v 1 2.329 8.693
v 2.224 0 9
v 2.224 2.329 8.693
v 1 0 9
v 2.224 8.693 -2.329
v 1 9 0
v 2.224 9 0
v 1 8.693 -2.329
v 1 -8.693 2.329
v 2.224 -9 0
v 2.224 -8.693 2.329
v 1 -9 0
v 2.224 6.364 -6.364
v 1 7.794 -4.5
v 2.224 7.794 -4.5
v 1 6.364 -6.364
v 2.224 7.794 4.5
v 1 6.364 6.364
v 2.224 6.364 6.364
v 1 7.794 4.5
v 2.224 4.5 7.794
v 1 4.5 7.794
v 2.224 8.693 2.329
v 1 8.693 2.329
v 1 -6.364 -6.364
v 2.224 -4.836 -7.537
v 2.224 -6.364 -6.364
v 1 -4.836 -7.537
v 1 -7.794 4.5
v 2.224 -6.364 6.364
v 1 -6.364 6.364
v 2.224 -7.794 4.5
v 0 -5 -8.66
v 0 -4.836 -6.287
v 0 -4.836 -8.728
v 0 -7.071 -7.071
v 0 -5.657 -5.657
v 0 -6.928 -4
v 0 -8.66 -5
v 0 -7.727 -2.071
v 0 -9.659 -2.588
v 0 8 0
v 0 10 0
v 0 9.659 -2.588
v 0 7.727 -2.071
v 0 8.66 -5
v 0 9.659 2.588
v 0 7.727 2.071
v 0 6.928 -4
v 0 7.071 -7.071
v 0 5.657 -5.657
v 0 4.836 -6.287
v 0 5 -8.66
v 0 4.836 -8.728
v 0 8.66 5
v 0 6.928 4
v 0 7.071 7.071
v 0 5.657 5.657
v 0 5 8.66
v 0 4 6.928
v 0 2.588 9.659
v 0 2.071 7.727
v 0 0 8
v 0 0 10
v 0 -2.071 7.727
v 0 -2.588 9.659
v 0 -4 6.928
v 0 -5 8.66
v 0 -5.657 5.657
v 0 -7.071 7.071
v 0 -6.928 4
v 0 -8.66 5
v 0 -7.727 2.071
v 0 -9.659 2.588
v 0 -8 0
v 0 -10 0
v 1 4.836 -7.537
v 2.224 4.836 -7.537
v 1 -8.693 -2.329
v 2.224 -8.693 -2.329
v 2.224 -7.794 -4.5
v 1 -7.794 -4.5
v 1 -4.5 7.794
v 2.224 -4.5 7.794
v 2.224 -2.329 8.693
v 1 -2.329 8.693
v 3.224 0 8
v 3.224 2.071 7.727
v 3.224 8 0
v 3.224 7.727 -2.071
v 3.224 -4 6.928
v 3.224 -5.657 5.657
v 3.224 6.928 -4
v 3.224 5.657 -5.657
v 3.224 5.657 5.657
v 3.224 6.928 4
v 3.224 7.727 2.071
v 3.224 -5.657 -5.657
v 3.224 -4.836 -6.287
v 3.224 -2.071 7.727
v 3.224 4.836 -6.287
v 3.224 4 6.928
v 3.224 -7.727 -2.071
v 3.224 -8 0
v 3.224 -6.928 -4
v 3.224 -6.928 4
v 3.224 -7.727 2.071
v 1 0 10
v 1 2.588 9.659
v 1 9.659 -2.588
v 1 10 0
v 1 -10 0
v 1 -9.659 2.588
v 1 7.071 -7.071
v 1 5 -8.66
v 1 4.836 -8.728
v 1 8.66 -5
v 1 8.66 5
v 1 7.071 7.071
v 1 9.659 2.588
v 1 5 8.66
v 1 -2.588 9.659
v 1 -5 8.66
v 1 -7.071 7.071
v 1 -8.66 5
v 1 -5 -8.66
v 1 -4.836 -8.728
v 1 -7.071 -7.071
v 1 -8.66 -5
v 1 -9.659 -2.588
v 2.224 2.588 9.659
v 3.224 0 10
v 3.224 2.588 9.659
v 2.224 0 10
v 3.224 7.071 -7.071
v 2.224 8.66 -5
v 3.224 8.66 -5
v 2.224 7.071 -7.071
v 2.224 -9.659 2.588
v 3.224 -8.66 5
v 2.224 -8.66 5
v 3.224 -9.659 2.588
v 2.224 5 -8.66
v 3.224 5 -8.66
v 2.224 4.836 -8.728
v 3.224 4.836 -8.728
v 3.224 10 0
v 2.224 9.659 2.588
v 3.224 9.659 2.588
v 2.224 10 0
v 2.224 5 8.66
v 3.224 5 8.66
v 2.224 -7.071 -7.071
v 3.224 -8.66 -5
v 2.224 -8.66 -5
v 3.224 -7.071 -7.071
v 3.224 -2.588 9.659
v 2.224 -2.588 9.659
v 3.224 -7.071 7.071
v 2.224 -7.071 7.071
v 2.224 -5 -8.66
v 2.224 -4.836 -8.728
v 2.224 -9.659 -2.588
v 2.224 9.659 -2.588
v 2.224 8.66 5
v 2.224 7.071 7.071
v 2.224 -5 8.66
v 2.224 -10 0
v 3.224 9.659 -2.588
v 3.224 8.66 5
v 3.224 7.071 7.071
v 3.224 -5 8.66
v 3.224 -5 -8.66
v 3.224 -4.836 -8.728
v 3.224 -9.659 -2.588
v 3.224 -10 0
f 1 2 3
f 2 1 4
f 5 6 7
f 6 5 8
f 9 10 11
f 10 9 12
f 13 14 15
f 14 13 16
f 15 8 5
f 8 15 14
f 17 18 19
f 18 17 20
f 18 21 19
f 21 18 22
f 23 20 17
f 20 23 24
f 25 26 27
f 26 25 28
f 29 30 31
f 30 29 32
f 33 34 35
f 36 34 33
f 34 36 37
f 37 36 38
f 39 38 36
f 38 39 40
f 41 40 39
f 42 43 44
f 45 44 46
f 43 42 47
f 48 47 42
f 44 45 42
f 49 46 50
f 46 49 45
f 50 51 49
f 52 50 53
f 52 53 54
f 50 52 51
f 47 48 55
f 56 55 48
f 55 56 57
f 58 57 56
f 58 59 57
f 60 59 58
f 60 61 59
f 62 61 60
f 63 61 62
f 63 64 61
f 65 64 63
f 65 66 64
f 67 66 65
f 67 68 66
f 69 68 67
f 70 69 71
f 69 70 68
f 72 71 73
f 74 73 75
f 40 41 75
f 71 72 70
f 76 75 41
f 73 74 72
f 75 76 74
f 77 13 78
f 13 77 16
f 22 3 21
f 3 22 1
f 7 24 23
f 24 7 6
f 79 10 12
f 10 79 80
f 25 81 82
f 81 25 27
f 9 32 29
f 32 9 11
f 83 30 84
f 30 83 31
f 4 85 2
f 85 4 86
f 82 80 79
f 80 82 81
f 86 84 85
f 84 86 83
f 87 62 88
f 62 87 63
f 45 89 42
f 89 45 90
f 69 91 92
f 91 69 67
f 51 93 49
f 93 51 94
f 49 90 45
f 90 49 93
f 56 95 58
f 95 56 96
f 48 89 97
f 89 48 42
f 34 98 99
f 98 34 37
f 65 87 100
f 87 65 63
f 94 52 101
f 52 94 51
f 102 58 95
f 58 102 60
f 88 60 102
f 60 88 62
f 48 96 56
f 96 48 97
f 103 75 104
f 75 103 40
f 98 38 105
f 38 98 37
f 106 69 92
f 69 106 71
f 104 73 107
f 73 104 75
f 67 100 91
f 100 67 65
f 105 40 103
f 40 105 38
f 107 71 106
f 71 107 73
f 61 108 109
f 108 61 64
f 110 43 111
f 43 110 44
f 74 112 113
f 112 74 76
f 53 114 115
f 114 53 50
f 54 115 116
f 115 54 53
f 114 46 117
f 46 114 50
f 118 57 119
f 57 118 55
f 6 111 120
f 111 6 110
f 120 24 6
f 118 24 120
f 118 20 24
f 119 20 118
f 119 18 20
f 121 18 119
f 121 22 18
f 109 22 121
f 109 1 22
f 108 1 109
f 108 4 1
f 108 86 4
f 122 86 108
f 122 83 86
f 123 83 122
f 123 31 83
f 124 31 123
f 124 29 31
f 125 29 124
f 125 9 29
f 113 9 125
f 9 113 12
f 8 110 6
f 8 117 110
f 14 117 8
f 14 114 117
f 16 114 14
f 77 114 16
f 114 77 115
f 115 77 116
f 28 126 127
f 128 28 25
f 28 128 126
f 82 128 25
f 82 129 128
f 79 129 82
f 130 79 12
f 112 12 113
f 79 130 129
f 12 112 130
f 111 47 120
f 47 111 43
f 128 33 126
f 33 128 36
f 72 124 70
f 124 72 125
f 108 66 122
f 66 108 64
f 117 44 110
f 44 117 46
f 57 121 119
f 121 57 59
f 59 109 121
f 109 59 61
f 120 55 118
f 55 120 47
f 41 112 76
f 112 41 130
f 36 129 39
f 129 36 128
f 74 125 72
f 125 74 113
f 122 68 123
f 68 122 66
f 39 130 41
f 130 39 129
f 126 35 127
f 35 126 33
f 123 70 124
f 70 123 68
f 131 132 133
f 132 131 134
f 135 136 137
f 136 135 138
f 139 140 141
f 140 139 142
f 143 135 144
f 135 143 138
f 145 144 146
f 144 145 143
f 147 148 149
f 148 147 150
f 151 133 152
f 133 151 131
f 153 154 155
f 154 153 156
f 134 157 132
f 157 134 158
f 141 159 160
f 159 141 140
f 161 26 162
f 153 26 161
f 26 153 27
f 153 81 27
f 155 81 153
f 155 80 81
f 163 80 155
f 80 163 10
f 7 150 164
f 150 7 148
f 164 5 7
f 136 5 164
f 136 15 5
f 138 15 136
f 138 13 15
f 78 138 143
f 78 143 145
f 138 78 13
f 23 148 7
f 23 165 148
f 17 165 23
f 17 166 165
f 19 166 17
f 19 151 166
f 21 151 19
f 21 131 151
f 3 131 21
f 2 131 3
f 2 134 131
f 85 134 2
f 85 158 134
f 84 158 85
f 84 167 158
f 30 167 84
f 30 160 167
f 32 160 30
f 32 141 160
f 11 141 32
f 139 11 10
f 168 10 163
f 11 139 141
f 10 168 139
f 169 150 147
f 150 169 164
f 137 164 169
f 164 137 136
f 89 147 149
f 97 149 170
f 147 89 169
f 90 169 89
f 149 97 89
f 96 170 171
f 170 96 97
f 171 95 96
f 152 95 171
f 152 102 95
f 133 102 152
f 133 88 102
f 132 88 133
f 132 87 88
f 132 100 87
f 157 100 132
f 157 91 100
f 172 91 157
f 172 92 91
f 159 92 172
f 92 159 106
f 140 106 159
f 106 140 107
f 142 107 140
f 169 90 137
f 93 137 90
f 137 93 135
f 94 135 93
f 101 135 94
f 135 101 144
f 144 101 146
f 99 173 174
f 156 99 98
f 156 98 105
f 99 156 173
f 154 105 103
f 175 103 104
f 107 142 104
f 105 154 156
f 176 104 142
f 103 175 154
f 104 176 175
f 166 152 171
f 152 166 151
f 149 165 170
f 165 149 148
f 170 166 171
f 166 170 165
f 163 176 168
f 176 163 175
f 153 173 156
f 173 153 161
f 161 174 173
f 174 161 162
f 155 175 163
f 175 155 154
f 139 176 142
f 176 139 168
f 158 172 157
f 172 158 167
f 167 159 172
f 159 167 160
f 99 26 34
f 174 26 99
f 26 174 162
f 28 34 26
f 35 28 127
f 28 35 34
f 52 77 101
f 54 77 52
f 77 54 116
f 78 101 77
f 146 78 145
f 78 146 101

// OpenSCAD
// file: ../build_environments.scad
// build_environments.scad: modules to build level sections
//

module pool(diameter=10.0, wall_height=2.0, step_width=3.0, connections=[])
{
    difference() {
        union() {
        difference() {
            cylinder(h=0.5,r1=diameter+step_width,r2=diameter+step_width,$fn=48);
            translate([0,0,-0.1])
                cylinder(h=0.7,r1=diameter,r2=diameter,$fn=48);
        }
        difference() {
            cylinder(h=wall_height,r1=diameter+step_width+1.0,r2=diameter+step_width+1.0,$fn=48);
            translate([0,0,-0.1])
                cylinder(h=wall_height+0.2,r1=diameter+step_width,r2=diameter+step_width,$fn=48);
        }
        }
    
        for (c = connections)
        {
            rotate([0,90,0]) {
                angle = atan2(c[1],c[0]);
                rotate([-angle,0,0]) {
                    cylinder(h=diameter+5.0,r1=c[2],r2=c[2],$fn=48);
                }
            }
        }
    }
}

module straight(length=10.0, width=2.0, dy1=0.0, dy2=0.0, dz=0.0)
{
    dims = [0, 0, 0, 0, 0, (dz/length)];
    matrix = [
        [ 1, dims[0], dims[1], 0 ],
        [ dims[2], 1, dims[4], 0 ],
        [ dims[5], dims[3], 1, 0 ],
        [ 0, 0, 0, 1 ]
    ];
    multmatrix(matrix)
    difference() {
        translate([dy1,0,0])
        union() {
            rotate([0,90,0]) {
                difference() {
                    cylinder(h=(length-dy1-dy2),r1=width+1.0,r2=width+1.0,$fn=24);
                    translate([0,0,-0.1])
                        cylinder(h=(length-dy1-dy2+0.2),r1=width,r2=width,$fn=24);
                }
                difference() {
                    cylinder(h=1.0,r1=width+2.0,r2=width+2.0,$fn=24);
                    translate([0,0,-0.1])
                        cylinder(h=1.2,r1=width,r2=width,$fn=24);
                }
                translate([0,0,(length-dy1-dy2)-1.0]) {
                    difference() {
                        cylinder(h=1.0,r1=width+2.0,r2=width+2.0,$fn=24);
                        translate([0,0,-0.1])
                            cylinder(h=1.2,r1=width,r2=width,$fn=24);
                    }
                }
            }
        }
        translate([0,0,-(2*width+4.0)/2])
            cube([3*length,3*length,2*width+4.0],center=true);
    }
}

module curve(p0=[0,0], center=[0,0], dir=1, angle=0.0, width=2.0)
{
    radius = sqrt((p0[0]-center[0])*(p0[0]-center[0]) + (p0[1]-center[1])*(p0[1]-center[1]));
    if (dir == 0) {
        difference() {
            rotate([0,0,-90])
            difference() {
                rotate_extrude(angle = angle, convexity = 10, $fn=32)
                    translate([radius, 0, 0])
                        circle(r = width+1.0,$fn=24);
                rotate([0,0,-1.0])
                    rotate_extrude(angle = angle+2.0, convexity = 10, $fn=32)
                        translate([radius, 0, 0])
                            circle(r = width,$fn=24);
            }
            translate([0,0,-(2*width+4.0)/2])
                cube([5*radius,5*radius,2*width+4.0],center=true);
        }
    }
    else {
        difference() {
            rotate([0,0,90])
            difference() {
                rotate_extrude(angle = -angle, convexity = 10, $fn=32)
                    translate([radius, 0, 0])
                        circle(r = width+1.0,$fn=24);
                rotate([0,0,1.0])
                    rotate_extrude(angle = -angle-2.0, convexity = 10, $fn=32)
                        translate([radius, 0, 0])
                            circle(r = width,$fn=24);
            }
            translate([0,0,-(2*width+4.0)/2])
                cube([5*radius,5*radius,2*width+4.0],center=true);
        }
    }

}

// test pool
//pool(diameter=12.0000, wall_height=3.0000, step_width=3.0000, connections=[[0.0000,-26.0000,2.0000], [23.6074,0.0000,2.0000]]);

// test straight, slope
//straight(length=26.0000, width=2.0000, dy1=11.8322, dy2=6.7082, dz=0.0000);
//straight(length=29.1549, width=12.0000, dy1=0.0000, dy2=0.0000, dz=-15.0000);

// test curve
//curve(p0=[23.6074, 0.0000], center=[23.6074, 5.0000], dir=0, angle=60.1011, width=2.0000);
//curve(p0=[33.6426, 12.4219], center=[37.9771, 9.9295], dir=1, angle=120.4627, width=2.0000);
// main file
use <../build_environments.scad>;
straight(length=3.2239, width=8.0000, dy1=0.0000, dy2=0.0000, dz=0.0000);
